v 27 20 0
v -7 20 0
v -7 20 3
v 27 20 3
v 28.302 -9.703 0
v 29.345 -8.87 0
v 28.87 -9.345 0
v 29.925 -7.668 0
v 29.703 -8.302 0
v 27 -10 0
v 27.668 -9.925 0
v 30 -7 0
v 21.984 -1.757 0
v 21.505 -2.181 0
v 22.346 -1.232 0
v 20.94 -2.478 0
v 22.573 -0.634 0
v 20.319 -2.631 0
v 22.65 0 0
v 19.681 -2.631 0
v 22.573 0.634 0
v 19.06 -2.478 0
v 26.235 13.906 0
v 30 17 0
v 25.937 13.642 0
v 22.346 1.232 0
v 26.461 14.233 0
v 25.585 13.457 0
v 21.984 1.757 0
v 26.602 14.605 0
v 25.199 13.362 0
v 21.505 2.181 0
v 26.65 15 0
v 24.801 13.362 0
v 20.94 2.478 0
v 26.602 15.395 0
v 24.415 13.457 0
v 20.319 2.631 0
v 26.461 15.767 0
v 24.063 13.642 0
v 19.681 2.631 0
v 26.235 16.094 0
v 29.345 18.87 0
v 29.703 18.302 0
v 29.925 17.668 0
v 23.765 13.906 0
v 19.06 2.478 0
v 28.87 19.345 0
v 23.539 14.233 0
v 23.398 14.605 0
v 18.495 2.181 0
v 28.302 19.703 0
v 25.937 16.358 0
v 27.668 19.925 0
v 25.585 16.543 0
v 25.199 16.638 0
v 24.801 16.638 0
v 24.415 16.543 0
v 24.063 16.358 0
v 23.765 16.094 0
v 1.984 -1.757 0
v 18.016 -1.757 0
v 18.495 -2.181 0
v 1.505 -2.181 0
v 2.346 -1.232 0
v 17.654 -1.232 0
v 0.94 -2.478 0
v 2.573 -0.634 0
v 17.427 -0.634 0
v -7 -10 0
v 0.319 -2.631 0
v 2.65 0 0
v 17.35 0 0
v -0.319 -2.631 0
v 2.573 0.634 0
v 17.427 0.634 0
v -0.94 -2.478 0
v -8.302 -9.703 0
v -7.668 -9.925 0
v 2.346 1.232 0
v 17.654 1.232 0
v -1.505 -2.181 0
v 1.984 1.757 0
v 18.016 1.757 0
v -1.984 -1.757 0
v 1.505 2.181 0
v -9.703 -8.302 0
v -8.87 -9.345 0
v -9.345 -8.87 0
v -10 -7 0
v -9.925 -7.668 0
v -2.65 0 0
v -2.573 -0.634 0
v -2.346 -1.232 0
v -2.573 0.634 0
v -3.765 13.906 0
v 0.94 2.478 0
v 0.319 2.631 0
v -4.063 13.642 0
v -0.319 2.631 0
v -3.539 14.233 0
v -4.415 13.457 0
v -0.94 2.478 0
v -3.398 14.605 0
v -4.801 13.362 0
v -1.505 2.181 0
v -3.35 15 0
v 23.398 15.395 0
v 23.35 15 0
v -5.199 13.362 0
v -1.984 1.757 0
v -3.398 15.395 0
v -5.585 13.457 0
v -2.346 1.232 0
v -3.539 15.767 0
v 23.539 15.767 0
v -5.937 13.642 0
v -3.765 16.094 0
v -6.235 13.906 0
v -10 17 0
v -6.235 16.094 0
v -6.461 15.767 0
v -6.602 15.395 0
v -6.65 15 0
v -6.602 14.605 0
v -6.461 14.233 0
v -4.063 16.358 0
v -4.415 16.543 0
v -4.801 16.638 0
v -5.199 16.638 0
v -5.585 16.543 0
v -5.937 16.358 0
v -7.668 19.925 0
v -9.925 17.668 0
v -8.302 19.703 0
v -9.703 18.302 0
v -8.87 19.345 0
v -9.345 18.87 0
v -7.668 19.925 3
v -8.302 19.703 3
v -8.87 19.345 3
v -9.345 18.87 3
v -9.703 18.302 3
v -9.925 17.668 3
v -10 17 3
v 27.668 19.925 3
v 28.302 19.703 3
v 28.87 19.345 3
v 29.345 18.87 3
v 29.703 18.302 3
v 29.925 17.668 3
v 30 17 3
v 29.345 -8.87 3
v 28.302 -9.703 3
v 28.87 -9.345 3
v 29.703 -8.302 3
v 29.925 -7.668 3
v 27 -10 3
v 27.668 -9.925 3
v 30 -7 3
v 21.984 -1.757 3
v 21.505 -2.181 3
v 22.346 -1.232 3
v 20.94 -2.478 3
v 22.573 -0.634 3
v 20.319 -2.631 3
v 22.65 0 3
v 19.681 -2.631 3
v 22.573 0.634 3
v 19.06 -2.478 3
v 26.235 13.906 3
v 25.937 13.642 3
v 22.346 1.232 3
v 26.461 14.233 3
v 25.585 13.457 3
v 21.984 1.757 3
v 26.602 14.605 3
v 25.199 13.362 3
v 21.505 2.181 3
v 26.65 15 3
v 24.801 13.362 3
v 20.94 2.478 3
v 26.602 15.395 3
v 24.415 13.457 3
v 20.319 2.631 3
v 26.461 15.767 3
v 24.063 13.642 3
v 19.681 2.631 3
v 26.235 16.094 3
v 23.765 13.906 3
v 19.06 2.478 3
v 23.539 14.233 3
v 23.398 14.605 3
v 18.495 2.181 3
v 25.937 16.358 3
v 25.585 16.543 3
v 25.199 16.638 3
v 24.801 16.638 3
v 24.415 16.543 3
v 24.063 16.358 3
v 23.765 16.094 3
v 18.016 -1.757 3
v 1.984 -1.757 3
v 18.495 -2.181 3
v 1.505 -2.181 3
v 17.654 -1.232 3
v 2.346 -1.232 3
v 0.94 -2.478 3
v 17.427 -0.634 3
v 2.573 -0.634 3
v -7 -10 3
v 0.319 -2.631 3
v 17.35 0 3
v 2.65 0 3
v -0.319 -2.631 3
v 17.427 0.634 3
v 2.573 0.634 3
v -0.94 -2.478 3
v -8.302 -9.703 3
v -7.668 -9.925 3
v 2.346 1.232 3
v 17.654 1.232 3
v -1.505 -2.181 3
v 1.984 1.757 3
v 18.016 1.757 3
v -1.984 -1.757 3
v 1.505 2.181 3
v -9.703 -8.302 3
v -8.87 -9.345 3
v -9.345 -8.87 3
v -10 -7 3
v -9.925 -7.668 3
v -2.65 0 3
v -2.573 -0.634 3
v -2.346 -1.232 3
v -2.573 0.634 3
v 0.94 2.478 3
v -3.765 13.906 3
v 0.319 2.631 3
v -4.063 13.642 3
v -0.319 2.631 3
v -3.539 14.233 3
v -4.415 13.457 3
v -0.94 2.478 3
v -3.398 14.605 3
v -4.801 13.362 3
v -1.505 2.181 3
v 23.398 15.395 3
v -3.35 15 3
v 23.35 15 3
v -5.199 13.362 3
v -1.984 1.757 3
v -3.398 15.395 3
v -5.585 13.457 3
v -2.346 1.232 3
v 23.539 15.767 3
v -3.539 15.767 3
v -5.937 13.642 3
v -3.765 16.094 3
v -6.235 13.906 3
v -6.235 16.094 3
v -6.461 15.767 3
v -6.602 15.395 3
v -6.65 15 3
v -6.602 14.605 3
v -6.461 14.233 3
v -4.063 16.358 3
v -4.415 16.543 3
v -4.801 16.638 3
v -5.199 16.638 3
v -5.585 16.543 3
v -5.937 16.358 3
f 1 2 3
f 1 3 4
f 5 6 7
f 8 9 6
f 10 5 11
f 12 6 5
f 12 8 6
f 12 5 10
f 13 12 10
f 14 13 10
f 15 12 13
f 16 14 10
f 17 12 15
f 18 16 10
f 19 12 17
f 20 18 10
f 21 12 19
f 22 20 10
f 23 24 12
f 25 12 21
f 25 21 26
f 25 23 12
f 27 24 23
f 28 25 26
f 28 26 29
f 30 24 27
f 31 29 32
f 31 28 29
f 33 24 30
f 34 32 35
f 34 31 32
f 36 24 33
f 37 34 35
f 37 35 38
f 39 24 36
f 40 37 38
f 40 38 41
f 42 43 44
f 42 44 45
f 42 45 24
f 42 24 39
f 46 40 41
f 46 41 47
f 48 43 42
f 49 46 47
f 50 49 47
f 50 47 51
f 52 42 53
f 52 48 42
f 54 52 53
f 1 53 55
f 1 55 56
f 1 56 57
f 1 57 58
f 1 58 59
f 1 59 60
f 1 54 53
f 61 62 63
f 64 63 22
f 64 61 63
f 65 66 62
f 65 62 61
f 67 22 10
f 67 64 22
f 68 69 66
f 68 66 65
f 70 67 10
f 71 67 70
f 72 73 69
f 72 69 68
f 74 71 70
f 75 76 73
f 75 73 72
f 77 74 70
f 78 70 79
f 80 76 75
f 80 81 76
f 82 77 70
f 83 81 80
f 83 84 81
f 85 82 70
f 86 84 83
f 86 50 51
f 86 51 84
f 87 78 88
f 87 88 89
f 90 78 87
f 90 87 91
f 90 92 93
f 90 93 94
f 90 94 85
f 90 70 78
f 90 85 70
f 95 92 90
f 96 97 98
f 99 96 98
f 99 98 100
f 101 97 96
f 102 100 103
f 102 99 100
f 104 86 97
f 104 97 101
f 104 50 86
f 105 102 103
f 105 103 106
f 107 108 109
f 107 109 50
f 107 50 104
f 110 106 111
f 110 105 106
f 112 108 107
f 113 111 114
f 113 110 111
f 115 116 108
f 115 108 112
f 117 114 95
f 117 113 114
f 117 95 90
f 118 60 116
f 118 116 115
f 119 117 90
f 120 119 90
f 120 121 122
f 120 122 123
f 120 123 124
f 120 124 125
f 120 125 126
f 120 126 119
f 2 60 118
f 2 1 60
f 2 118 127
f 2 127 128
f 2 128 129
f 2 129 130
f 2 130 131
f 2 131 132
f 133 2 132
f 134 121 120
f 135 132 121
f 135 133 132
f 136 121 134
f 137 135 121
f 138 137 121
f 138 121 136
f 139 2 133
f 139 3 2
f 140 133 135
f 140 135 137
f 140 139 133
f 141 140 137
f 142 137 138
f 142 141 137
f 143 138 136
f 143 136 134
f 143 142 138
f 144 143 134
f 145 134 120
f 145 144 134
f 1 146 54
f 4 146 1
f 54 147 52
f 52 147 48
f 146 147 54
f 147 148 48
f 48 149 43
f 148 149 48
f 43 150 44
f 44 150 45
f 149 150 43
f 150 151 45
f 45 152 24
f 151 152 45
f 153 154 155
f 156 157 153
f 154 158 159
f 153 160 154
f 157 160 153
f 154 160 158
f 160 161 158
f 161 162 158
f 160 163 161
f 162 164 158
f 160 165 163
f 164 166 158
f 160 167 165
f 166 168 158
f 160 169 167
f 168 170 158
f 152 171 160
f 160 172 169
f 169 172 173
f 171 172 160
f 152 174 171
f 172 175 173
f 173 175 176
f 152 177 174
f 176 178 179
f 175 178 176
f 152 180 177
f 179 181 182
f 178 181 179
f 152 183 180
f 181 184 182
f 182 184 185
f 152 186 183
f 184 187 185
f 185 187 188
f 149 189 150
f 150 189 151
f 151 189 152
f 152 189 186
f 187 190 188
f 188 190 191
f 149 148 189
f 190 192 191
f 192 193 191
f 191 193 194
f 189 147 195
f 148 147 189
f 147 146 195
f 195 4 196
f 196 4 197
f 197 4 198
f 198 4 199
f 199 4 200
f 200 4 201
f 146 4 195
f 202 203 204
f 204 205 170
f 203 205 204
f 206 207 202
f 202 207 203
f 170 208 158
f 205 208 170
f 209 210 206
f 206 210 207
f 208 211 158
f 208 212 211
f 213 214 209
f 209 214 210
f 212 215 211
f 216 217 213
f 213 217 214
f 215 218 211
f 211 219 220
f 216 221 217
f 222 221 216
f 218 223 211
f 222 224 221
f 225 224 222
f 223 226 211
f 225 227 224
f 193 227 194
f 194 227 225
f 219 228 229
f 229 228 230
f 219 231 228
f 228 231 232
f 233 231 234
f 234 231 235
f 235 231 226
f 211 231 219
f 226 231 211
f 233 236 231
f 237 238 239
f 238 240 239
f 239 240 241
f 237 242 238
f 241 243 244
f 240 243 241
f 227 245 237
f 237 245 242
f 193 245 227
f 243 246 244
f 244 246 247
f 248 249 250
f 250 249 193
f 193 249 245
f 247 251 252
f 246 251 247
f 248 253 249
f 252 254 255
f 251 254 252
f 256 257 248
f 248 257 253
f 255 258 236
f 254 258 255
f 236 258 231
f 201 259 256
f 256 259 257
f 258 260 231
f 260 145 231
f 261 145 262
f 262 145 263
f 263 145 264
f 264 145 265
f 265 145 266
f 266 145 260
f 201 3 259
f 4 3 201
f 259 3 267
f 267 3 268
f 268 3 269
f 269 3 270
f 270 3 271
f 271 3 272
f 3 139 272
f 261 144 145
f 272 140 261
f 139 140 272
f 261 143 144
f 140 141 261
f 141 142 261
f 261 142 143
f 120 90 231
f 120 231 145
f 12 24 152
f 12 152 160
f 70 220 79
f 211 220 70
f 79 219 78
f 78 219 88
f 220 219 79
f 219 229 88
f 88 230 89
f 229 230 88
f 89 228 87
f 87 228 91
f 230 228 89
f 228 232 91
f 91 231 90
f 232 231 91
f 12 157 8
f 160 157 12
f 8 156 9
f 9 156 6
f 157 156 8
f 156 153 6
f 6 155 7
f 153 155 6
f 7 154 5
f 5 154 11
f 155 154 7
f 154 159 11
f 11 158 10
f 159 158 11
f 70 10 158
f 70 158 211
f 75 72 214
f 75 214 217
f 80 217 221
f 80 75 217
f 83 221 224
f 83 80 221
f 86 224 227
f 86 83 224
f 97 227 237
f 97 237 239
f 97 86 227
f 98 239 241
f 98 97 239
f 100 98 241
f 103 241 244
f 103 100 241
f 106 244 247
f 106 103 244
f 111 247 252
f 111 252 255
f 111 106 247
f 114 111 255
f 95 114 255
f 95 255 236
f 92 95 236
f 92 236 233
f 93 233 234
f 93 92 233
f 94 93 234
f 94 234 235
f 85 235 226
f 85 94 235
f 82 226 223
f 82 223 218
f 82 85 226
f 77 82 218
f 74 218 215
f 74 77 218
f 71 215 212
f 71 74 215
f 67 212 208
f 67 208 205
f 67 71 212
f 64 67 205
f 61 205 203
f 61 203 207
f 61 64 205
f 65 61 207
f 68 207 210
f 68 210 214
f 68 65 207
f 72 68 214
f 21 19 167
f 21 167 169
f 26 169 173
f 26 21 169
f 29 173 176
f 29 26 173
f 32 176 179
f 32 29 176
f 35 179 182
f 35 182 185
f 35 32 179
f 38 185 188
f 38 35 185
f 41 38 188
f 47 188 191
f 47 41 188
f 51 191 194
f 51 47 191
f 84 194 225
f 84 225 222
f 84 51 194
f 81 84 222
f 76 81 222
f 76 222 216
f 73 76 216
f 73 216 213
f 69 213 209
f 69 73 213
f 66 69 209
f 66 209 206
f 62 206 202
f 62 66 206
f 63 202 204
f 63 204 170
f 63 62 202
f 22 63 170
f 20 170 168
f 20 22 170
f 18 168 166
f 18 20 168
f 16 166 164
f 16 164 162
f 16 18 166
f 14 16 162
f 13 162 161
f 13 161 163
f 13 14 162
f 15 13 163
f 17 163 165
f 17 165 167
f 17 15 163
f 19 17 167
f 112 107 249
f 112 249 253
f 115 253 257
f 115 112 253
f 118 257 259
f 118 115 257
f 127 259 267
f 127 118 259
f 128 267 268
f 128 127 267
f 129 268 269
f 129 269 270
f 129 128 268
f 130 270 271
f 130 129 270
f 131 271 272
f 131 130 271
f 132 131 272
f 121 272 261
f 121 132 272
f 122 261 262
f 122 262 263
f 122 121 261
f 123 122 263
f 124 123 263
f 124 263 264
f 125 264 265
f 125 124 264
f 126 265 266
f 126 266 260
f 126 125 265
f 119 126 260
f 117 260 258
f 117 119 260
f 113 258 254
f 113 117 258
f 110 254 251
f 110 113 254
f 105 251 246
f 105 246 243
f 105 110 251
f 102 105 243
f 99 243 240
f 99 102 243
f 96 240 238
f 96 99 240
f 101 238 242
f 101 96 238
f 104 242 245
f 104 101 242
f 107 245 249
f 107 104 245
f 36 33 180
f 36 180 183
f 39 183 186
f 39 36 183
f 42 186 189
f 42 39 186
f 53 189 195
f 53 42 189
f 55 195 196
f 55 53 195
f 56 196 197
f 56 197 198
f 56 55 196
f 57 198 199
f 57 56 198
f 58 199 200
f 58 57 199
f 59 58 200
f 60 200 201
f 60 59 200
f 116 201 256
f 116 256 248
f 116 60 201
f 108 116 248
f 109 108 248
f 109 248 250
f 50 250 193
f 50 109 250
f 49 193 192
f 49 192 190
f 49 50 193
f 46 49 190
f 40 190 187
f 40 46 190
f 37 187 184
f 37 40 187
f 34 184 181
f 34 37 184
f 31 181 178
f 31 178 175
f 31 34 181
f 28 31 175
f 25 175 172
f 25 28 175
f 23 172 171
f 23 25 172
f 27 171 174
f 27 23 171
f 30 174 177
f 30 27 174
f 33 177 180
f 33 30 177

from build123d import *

# Parameters (mm, degrees)
SKETCH_W   = 40
SKETCH_H   = 30
SKETCH_R   = 2.65
SKETCH_R_2 = 1.65
PAD_DEPTH  = 3
FILLET_R   = 3


with BuildPart() as part:
    # Sketch → Pad (new body)
    with BuildSketch(Plane.XY):
        with Locations((10, 5)):
            Rectangle(SKETCH_W, SKETCH_H)
        Circle(SKETCH_R, mode=Mode.SUBTRACT)
        with Locations((20, 0)):
            Circle(SKETCH_R, mode=Mode.SUBTRACT)
        with Locations((-5, 15)):
            Circle(SKETCH_R_2, mode=Mode.SUBTRACT)
        with Locations((25, 15)):
            Circle(SKETCH_R_2, mode=Mode.SUBTRACT)
    extrude(amount=PAD_DEPTH)

    # Fillet
    fillet_edges = [part.edges().sort_by_distance(p)[0] for p in [
        (-10, -10, 1.5),
        (30, -10, 1.5),
        (-10, 20, 1.5),
        (30, 20, 1.5),
    ]]
    fillet(fillet_edges, radius=FILLET_R)


solid = part.part
